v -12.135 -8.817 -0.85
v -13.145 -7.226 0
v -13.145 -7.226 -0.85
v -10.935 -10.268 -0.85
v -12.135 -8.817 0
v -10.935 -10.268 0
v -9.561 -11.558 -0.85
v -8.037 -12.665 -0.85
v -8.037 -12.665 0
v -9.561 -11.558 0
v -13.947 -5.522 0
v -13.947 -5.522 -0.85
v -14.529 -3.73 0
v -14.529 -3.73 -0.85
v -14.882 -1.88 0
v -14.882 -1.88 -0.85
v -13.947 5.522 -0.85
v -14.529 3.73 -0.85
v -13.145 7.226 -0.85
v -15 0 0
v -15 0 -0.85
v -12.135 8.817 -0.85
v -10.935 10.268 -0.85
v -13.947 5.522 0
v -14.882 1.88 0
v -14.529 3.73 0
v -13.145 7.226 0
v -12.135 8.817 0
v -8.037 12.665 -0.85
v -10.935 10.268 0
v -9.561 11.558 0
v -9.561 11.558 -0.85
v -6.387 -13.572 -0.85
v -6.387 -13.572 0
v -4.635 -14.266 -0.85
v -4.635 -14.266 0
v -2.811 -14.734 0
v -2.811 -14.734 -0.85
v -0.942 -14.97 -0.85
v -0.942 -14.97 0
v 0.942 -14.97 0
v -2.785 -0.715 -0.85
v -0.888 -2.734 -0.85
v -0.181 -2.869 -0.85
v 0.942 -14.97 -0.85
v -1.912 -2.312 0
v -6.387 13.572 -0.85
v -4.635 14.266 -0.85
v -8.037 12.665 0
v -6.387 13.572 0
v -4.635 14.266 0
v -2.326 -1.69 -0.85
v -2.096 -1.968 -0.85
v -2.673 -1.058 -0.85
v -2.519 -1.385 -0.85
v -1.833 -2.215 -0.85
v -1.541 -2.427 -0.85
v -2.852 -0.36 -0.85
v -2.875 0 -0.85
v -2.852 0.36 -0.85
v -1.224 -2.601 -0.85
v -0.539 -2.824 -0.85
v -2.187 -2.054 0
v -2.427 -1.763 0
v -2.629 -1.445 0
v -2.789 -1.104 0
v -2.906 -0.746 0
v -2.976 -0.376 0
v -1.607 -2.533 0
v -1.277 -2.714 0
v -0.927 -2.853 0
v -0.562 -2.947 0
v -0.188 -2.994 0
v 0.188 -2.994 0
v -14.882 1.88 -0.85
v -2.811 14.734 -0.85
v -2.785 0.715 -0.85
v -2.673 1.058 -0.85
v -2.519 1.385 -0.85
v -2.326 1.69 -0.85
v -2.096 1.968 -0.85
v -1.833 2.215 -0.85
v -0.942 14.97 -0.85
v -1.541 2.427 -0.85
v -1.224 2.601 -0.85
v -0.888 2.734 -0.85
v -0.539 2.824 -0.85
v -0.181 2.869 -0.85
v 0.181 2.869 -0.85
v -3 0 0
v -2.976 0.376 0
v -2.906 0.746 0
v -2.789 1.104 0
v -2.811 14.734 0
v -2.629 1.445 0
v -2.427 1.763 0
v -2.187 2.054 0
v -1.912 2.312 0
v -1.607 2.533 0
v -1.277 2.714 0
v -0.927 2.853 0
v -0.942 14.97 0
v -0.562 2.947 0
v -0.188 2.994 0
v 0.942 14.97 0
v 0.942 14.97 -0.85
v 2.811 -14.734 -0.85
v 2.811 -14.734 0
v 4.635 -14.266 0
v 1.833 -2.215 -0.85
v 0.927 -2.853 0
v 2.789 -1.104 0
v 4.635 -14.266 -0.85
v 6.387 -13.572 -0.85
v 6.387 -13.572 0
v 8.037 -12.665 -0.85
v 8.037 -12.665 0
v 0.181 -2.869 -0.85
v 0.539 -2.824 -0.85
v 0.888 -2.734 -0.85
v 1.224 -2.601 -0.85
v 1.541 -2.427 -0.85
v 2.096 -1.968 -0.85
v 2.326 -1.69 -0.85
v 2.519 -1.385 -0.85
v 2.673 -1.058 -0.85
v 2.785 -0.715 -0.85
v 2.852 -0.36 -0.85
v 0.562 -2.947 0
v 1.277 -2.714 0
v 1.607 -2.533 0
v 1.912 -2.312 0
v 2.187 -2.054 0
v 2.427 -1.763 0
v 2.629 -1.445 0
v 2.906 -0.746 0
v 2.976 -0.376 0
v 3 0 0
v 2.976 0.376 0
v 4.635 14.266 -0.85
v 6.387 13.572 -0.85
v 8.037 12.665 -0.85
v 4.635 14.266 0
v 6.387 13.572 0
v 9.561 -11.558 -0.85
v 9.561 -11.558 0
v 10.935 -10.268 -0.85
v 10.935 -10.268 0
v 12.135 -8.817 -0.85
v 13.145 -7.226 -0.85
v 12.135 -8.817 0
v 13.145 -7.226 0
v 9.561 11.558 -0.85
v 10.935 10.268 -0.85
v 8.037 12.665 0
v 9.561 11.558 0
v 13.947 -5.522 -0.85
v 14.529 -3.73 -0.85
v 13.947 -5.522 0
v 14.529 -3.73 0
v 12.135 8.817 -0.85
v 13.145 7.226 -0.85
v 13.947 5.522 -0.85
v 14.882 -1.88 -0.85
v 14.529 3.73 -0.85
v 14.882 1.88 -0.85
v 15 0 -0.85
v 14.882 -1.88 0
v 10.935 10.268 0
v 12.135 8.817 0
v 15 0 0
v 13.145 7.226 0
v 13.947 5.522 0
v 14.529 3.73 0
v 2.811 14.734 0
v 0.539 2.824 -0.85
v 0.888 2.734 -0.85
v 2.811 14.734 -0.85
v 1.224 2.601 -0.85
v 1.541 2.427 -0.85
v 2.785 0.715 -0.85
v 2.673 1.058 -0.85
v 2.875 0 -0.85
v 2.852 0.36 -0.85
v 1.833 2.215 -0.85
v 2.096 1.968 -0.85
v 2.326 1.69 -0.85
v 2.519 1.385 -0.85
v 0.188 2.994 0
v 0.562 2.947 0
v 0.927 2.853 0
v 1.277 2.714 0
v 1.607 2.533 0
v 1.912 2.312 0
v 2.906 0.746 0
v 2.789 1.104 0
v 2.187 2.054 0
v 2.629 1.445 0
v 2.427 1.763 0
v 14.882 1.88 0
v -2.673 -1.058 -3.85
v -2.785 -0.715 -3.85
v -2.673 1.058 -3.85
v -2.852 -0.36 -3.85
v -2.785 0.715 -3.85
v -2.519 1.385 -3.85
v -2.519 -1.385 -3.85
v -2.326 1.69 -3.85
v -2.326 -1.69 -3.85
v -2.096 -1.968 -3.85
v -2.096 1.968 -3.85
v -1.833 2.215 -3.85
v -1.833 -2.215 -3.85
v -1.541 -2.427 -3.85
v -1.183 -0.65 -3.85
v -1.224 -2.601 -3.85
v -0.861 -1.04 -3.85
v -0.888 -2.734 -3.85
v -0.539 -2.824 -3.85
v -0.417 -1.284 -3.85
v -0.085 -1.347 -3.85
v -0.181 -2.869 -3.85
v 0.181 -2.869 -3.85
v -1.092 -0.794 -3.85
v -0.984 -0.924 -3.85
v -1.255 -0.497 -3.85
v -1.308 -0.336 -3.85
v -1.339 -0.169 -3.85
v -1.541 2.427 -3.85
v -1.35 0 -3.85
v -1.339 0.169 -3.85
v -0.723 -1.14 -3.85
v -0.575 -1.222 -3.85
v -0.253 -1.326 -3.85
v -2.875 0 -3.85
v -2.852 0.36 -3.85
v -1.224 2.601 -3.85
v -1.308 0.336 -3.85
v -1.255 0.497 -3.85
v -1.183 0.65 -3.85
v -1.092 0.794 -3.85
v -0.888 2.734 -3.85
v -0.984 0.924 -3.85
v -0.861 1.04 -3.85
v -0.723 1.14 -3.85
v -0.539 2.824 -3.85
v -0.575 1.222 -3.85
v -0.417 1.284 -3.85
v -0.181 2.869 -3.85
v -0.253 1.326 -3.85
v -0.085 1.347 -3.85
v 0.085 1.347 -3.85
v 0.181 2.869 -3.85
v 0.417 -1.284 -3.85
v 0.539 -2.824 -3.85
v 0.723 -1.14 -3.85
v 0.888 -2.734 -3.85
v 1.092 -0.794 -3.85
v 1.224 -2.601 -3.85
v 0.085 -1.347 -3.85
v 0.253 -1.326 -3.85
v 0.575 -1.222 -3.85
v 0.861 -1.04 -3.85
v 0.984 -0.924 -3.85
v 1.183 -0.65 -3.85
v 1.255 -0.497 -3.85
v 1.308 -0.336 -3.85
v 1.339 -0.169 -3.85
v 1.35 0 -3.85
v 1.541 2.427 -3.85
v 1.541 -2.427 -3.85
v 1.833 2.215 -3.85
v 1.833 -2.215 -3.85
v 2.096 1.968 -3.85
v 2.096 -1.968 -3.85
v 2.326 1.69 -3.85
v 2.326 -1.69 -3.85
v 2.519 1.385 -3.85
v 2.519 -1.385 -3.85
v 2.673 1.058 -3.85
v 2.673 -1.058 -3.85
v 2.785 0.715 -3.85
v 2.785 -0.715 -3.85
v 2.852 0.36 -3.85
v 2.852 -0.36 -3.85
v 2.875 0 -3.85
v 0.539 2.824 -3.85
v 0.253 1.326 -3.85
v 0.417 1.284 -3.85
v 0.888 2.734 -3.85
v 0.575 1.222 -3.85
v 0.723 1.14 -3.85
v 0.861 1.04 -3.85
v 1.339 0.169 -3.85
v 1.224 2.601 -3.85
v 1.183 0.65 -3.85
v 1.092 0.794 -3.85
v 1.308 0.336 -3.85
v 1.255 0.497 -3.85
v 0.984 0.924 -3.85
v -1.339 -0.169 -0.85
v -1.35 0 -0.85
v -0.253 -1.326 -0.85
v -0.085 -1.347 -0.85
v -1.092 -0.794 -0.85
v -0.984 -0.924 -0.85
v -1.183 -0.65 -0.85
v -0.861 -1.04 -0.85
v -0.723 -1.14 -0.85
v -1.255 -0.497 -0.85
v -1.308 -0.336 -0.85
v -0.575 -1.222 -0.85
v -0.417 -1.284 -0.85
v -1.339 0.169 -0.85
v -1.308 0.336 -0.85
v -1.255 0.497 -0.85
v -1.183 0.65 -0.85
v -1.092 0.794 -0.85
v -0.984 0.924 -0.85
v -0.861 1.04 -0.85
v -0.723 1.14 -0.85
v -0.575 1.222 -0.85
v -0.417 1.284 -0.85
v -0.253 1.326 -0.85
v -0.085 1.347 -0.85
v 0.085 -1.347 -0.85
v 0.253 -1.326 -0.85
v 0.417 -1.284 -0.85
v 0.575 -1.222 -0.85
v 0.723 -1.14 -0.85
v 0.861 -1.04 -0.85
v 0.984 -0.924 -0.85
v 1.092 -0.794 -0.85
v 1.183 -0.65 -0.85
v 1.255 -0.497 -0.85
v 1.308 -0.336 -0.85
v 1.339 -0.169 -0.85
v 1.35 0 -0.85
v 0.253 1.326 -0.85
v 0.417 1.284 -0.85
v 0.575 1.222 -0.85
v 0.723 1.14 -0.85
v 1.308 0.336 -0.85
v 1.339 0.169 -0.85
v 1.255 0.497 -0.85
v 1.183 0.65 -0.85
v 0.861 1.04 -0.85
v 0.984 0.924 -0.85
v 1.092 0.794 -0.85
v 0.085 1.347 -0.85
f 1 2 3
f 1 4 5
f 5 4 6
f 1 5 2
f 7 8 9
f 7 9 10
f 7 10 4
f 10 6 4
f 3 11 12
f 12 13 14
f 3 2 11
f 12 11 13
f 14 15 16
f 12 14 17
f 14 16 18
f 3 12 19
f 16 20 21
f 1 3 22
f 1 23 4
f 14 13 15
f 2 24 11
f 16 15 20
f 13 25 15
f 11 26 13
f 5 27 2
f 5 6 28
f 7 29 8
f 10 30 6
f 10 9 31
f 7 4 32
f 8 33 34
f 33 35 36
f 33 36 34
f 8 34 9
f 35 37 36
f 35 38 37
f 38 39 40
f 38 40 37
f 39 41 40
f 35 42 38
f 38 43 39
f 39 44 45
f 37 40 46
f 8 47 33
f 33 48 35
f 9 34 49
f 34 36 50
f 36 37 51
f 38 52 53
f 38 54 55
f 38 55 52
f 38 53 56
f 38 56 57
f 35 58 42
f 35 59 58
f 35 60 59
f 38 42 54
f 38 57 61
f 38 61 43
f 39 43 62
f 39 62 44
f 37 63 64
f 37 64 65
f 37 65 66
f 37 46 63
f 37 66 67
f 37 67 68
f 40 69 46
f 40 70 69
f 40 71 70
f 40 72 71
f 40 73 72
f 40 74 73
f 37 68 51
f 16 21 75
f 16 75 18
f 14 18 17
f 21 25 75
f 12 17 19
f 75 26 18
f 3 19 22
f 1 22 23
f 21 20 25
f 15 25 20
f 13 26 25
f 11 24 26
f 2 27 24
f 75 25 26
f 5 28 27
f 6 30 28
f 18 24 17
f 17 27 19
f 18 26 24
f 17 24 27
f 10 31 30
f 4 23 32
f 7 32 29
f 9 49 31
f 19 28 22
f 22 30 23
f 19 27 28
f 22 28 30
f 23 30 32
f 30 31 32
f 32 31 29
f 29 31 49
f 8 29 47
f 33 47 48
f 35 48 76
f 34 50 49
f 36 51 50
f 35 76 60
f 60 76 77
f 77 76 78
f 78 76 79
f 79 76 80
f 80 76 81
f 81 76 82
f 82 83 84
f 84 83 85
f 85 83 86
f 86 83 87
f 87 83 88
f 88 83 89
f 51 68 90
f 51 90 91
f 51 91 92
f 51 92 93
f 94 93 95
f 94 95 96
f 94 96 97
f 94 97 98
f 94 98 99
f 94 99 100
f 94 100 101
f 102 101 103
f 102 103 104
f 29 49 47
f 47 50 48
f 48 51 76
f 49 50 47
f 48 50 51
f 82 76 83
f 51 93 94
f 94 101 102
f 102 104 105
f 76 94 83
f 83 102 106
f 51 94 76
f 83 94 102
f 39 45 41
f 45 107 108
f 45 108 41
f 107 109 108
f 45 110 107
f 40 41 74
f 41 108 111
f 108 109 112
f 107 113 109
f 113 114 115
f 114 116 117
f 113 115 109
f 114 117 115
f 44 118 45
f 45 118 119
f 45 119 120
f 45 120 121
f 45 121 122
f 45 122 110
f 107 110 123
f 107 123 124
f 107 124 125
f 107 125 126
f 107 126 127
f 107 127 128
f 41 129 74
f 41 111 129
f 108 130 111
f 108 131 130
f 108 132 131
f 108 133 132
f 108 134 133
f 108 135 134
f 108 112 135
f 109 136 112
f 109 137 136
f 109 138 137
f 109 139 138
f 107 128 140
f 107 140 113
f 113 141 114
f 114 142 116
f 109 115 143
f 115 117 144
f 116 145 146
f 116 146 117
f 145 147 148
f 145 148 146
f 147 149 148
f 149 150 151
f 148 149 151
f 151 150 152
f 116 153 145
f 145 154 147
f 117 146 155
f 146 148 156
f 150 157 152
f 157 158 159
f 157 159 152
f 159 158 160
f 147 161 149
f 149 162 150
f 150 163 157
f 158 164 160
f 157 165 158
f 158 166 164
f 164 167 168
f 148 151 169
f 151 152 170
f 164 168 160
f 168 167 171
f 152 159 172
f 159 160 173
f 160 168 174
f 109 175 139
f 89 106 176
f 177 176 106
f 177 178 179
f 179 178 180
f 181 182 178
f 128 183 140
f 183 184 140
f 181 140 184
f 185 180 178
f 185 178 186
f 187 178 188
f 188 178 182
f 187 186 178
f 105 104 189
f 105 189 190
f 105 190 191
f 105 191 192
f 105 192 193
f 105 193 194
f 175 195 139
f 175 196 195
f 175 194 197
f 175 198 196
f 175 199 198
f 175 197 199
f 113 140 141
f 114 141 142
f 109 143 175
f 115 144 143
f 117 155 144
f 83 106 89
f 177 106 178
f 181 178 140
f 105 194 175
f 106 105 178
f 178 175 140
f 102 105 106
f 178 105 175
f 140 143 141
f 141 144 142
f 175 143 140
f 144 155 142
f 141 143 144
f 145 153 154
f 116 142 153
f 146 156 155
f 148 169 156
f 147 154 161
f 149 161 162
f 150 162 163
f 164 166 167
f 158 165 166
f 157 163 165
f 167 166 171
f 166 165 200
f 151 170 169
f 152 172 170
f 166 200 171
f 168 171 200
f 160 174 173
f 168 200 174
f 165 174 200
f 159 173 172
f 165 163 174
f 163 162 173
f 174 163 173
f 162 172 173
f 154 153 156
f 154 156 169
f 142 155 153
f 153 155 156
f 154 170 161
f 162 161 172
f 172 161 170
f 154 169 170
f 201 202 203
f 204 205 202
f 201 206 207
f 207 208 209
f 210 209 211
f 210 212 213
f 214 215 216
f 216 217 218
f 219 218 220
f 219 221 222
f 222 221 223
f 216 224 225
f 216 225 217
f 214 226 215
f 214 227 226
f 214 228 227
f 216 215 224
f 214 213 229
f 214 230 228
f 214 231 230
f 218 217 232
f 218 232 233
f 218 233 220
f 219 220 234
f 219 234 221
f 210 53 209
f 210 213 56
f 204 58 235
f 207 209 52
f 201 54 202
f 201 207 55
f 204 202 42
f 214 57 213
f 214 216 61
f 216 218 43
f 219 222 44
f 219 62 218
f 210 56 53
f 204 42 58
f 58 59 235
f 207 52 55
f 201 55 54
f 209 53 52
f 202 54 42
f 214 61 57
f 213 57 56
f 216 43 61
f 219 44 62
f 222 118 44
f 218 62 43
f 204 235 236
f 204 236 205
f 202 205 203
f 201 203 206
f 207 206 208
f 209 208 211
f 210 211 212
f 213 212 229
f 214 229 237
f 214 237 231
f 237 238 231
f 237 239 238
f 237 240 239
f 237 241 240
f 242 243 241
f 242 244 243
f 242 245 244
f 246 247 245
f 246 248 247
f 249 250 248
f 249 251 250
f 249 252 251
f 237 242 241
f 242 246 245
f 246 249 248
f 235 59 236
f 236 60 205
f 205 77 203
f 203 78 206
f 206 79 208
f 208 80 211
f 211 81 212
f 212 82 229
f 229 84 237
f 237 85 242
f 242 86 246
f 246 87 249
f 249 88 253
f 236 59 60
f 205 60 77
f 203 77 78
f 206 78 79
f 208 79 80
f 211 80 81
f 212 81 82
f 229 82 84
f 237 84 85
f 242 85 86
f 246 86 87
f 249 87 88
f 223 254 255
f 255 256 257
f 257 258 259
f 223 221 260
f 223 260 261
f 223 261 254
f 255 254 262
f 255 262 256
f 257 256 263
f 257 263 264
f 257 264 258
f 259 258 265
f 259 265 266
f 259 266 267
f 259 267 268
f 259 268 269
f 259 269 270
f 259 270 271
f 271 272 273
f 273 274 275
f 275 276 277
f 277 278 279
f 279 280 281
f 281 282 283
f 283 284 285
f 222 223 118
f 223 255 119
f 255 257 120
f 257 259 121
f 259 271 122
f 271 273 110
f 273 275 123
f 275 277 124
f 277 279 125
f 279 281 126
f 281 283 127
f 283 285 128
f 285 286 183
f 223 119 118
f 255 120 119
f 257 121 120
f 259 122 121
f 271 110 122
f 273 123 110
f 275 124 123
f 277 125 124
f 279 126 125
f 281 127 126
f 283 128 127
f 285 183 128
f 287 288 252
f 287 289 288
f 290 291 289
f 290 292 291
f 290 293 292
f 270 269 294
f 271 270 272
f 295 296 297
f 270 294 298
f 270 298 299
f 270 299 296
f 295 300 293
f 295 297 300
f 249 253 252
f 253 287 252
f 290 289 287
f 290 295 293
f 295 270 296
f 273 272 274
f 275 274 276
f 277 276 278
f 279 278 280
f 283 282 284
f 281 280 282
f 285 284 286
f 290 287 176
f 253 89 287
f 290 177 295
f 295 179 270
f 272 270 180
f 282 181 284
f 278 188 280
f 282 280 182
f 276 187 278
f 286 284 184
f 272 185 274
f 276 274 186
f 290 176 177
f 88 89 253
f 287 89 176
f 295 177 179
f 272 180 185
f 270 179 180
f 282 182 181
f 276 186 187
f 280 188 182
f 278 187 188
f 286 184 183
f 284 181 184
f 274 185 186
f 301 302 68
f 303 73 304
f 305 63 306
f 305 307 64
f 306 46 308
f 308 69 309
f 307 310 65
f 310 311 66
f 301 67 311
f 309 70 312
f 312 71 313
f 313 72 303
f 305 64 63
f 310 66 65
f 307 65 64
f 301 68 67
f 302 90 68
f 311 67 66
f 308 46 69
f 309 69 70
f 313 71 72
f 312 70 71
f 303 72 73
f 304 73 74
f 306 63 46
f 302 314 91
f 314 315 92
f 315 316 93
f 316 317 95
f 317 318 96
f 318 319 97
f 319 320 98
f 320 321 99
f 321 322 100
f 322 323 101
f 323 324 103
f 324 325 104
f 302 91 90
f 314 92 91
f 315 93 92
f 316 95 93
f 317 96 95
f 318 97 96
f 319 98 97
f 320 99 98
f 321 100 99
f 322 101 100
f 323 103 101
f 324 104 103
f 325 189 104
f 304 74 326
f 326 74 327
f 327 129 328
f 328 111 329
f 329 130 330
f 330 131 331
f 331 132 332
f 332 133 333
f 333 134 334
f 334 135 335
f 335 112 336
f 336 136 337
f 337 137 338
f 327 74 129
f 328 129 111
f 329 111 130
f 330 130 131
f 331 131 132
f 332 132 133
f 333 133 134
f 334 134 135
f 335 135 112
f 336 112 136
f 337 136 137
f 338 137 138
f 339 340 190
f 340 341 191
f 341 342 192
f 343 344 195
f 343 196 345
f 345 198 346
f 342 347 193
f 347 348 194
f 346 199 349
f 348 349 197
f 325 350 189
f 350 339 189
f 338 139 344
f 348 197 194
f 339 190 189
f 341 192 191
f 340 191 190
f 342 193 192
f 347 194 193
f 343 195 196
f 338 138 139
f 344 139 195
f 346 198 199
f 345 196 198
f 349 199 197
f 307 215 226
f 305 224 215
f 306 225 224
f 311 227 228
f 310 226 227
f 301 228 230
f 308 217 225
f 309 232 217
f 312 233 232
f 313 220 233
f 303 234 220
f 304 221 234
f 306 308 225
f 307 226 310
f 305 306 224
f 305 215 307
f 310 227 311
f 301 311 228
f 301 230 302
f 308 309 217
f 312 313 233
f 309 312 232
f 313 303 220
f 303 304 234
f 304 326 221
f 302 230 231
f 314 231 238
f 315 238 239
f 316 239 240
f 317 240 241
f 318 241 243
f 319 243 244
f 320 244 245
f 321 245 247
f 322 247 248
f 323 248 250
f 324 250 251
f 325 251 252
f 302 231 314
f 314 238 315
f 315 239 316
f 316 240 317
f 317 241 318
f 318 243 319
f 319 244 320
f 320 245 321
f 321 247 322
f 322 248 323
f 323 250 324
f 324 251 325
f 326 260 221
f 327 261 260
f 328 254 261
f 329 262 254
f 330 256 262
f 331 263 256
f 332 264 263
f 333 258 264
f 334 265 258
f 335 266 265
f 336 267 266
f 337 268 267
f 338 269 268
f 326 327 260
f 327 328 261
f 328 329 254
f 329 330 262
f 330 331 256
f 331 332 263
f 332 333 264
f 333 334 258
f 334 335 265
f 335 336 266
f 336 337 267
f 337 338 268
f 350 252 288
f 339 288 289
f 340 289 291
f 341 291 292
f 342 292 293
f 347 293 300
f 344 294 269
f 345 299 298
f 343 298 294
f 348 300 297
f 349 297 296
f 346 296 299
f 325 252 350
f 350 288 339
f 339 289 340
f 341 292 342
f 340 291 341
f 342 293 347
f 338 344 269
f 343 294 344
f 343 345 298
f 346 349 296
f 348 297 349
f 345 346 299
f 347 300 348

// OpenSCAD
$fn = 50;

difference() {
	union() {
		translate(v = [0, 0, -0.85]) {
			cylinder(h = 0.85, r = 15.0);
		}
		#translate(v = [0, 0, -3.85]) {
			cylinder(h = 3.85, r = 2.875);
		}
	}
	union() {
		translate(v = [0, 0, 0]) {
			rotate(a = [0, 0, 0]) {
				difference() {
					union() {
						translate(v = [0, 0, -3.85]) {
							cylinder(h = 3.85, r = 1.0);
						}
						translate(v = [0, 0, -0.85]) {
							cylinder(h = 0.85, r1 = 1.35, r2 = 3.0);
						}
						translate(v = [0, 0, -3.85]) {
							cylinder(h = 3.85, r = 1.35);
						}
						translate(v = [0, 0, -3.85]) {
							cylinder(h = 3.85, r = 1.0);
						}
					}
					union();
				}
			}
		}
	}
}
